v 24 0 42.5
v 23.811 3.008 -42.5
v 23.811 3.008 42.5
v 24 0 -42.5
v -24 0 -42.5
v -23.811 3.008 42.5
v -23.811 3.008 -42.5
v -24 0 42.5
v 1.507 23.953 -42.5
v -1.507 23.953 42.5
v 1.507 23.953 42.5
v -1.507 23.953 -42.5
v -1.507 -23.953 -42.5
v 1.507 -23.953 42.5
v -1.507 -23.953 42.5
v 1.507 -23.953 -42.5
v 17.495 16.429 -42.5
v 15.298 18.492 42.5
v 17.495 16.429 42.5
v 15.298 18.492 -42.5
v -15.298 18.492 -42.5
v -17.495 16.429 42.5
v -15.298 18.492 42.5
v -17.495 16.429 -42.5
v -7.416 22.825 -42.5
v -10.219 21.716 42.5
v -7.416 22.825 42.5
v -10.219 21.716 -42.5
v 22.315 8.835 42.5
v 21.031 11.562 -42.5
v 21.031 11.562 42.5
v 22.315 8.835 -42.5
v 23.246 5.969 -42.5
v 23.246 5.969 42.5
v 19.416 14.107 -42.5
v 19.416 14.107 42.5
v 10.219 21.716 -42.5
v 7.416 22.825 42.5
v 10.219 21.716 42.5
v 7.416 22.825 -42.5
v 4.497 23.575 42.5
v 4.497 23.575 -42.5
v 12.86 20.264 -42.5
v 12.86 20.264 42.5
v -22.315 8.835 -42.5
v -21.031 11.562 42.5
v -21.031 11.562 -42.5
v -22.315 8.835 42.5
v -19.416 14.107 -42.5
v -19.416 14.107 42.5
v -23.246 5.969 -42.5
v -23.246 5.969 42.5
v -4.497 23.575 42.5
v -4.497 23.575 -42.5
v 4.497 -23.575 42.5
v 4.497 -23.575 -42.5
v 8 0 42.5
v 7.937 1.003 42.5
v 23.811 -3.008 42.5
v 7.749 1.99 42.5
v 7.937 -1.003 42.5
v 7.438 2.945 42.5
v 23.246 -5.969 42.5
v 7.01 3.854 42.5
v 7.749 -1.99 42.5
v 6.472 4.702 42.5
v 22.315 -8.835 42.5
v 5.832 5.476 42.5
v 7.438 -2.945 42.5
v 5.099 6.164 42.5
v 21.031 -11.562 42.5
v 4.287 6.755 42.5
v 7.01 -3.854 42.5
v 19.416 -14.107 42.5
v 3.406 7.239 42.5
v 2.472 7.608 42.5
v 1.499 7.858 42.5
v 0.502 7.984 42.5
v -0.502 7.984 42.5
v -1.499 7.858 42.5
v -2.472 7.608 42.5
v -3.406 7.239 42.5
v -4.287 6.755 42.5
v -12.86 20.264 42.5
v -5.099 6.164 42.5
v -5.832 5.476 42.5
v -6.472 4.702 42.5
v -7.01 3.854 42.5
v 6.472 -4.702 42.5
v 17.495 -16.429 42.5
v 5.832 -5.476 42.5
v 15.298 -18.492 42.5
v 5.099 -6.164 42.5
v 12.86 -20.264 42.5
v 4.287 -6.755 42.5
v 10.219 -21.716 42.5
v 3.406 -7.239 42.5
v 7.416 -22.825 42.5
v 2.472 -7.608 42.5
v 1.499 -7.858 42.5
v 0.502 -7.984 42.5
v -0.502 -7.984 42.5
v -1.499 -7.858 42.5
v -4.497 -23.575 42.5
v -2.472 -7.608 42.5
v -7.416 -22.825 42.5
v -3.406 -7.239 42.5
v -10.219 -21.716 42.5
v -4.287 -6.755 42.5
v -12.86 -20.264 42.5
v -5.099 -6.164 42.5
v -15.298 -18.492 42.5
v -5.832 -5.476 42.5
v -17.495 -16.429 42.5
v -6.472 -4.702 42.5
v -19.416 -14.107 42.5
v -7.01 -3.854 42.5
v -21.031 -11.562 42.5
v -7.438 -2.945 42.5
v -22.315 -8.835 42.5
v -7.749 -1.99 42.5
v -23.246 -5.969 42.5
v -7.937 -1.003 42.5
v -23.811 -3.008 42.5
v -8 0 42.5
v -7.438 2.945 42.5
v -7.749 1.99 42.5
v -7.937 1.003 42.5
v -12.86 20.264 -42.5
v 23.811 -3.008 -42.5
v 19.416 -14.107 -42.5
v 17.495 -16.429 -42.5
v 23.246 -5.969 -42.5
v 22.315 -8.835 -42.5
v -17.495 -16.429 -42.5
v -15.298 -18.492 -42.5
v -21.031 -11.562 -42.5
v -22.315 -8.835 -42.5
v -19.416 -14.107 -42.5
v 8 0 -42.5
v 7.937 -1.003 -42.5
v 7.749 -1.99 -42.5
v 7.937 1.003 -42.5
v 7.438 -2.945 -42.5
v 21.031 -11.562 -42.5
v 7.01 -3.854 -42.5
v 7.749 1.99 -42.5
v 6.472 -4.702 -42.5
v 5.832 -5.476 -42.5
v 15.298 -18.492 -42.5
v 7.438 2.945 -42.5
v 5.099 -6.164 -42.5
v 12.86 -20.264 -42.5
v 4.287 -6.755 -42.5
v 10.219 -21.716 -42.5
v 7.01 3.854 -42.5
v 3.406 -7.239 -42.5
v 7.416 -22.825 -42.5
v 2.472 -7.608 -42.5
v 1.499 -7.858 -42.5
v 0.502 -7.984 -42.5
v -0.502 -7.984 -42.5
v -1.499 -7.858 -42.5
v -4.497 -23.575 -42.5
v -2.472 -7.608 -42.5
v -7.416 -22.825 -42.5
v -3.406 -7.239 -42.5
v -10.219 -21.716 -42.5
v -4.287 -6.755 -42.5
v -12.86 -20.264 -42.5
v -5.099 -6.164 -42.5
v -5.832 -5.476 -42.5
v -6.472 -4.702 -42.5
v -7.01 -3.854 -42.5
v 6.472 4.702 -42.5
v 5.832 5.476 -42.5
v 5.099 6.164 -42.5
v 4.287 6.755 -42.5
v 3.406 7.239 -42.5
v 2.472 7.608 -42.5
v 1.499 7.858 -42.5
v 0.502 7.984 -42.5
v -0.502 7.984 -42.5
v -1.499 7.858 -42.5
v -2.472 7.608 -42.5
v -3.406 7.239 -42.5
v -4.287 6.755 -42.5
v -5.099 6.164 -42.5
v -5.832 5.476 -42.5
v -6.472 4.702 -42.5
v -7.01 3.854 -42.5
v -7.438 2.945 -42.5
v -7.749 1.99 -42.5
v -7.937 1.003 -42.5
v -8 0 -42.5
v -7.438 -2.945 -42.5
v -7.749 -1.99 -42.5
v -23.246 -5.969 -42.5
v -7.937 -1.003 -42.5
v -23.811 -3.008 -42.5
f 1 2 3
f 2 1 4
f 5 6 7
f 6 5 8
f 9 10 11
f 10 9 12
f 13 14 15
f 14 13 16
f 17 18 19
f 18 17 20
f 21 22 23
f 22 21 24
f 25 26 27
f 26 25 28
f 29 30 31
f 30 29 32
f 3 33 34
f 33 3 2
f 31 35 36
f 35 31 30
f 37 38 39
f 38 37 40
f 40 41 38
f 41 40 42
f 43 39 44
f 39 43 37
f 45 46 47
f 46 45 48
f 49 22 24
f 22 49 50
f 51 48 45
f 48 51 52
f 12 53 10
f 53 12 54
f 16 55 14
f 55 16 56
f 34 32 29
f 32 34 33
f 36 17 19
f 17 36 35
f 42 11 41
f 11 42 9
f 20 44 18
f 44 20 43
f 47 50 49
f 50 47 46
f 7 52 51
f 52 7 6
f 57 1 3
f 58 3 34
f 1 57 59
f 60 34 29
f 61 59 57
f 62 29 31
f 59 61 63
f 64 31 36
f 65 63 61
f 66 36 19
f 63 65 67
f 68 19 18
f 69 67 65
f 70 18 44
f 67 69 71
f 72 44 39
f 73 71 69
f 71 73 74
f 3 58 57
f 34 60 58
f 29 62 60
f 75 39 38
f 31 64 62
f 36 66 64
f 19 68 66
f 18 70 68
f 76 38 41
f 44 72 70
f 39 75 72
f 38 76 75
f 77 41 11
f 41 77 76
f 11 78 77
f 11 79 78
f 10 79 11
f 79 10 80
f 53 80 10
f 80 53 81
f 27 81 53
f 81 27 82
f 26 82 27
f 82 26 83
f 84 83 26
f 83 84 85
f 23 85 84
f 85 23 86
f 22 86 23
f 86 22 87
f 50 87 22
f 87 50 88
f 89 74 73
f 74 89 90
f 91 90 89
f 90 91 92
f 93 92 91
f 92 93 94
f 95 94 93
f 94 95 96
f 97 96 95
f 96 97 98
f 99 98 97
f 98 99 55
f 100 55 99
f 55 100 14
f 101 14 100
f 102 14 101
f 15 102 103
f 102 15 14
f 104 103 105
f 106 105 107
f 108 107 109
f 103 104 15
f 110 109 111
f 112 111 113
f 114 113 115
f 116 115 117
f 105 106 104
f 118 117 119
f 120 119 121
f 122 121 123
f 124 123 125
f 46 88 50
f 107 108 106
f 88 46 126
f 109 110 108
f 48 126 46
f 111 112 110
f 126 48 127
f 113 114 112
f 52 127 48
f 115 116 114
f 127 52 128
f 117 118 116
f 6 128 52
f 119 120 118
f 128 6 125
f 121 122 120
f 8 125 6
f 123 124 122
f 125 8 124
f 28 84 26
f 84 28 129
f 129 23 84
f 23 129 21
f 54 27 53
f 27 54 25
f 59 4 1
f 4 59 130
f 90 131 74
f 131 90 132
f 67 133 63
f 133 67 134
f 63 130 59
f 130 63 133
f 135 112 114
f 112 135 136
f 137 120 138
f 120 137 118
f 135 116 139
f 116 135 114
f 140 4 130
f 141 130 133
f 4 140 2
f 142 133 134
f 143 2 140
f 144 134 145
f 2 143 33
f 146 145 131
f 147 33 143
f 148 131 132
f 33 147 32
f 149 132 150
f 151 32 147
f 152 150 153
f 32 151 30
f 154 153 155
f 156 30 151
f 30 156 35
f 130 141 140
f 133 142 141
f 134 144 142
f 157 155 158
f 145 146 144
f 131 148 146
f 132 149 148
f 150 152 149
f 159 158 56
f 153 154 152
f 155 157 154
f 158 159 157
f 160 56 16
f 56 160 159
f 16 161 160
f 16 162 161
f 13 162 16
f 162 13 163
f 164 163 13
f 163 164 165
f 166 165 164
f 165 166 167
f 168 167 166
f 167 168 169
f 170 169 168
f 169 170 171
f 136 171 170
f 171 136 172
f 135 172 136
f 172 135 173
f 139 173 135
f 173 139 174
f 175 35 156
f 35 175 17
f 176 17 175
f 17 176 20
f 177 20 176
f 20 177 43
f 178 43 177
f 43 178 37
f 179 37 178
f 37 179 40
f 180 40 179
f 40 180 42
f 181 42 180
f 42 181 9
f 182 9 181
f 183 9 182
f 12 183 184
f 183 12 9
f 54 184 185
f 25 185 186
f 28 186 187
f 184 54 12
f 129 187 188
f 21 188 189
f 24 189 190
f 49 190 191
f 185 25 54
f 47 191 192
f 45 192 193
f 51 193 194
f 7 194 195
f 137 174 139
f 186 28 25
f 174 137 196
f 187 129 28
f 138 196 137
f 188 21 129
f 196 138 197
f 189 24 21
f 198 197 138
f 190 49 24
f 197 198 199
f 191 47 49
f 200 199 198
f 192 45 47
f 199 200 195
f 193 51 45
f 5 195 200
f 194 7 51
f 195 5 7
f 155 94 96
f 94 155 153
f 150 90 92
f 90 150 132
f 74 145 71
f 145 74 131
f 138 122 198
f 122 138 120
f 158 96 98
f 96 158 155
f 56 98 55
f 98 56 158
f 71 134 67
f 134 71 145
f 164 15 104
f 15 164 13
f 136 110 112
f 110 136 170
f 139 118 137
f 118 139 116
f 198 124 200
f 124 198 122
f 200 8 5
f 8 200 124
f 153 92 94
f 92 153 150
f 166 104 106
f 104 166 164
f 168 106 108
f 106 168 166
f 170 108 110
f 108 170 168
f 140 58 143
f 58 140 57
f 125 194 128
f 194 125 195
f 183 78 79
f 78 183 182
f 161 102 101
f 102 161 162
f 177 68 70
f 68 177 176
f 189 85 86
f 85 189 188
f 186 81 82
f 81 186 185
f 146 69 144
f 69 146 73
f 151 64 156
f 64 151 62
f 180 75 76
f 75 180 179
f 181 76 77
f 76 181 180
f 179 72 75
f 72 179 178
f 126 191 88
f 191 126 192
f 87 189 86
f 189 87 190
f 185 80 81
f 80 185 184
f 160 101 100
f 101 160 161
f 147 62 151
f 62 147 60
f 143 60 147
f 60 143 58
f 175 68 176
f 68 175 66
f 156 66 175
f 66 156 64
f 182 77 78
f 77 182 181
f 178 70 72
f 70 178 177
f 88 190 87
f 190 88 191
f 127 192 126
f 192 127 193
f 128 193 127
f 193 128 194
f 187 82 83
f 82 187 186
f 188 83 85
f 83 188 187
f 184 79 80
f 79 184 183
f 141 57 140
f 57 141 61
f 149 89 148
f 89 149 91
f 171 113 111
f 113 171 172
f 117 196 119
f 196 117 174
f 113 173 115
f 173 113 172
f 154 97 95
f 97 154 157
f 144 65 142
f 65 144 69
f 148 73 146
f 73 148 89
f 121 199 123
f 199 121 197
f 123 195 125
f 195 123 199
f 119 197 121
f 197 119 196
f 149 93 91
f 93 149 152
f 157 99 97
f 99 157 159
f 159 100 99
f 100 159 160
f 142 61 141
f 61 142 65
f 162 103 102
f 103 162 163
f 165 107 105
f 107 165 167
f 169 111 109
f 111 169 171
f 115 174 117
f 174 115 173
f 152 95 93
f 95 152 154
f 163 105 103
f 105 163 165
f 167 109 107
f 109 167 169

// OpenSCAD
$fn = 50;


difference() {
	union() {
		translate(v = [0, 0, -42.5000000000]) {
			cylinder(h = 85, r = 24.0000000000);
		}
	}
	union() {
		translate(v = [0, 0, -100.0000000000]) {
			cylinder(h = 200, r = 8);
		}
	}
}
